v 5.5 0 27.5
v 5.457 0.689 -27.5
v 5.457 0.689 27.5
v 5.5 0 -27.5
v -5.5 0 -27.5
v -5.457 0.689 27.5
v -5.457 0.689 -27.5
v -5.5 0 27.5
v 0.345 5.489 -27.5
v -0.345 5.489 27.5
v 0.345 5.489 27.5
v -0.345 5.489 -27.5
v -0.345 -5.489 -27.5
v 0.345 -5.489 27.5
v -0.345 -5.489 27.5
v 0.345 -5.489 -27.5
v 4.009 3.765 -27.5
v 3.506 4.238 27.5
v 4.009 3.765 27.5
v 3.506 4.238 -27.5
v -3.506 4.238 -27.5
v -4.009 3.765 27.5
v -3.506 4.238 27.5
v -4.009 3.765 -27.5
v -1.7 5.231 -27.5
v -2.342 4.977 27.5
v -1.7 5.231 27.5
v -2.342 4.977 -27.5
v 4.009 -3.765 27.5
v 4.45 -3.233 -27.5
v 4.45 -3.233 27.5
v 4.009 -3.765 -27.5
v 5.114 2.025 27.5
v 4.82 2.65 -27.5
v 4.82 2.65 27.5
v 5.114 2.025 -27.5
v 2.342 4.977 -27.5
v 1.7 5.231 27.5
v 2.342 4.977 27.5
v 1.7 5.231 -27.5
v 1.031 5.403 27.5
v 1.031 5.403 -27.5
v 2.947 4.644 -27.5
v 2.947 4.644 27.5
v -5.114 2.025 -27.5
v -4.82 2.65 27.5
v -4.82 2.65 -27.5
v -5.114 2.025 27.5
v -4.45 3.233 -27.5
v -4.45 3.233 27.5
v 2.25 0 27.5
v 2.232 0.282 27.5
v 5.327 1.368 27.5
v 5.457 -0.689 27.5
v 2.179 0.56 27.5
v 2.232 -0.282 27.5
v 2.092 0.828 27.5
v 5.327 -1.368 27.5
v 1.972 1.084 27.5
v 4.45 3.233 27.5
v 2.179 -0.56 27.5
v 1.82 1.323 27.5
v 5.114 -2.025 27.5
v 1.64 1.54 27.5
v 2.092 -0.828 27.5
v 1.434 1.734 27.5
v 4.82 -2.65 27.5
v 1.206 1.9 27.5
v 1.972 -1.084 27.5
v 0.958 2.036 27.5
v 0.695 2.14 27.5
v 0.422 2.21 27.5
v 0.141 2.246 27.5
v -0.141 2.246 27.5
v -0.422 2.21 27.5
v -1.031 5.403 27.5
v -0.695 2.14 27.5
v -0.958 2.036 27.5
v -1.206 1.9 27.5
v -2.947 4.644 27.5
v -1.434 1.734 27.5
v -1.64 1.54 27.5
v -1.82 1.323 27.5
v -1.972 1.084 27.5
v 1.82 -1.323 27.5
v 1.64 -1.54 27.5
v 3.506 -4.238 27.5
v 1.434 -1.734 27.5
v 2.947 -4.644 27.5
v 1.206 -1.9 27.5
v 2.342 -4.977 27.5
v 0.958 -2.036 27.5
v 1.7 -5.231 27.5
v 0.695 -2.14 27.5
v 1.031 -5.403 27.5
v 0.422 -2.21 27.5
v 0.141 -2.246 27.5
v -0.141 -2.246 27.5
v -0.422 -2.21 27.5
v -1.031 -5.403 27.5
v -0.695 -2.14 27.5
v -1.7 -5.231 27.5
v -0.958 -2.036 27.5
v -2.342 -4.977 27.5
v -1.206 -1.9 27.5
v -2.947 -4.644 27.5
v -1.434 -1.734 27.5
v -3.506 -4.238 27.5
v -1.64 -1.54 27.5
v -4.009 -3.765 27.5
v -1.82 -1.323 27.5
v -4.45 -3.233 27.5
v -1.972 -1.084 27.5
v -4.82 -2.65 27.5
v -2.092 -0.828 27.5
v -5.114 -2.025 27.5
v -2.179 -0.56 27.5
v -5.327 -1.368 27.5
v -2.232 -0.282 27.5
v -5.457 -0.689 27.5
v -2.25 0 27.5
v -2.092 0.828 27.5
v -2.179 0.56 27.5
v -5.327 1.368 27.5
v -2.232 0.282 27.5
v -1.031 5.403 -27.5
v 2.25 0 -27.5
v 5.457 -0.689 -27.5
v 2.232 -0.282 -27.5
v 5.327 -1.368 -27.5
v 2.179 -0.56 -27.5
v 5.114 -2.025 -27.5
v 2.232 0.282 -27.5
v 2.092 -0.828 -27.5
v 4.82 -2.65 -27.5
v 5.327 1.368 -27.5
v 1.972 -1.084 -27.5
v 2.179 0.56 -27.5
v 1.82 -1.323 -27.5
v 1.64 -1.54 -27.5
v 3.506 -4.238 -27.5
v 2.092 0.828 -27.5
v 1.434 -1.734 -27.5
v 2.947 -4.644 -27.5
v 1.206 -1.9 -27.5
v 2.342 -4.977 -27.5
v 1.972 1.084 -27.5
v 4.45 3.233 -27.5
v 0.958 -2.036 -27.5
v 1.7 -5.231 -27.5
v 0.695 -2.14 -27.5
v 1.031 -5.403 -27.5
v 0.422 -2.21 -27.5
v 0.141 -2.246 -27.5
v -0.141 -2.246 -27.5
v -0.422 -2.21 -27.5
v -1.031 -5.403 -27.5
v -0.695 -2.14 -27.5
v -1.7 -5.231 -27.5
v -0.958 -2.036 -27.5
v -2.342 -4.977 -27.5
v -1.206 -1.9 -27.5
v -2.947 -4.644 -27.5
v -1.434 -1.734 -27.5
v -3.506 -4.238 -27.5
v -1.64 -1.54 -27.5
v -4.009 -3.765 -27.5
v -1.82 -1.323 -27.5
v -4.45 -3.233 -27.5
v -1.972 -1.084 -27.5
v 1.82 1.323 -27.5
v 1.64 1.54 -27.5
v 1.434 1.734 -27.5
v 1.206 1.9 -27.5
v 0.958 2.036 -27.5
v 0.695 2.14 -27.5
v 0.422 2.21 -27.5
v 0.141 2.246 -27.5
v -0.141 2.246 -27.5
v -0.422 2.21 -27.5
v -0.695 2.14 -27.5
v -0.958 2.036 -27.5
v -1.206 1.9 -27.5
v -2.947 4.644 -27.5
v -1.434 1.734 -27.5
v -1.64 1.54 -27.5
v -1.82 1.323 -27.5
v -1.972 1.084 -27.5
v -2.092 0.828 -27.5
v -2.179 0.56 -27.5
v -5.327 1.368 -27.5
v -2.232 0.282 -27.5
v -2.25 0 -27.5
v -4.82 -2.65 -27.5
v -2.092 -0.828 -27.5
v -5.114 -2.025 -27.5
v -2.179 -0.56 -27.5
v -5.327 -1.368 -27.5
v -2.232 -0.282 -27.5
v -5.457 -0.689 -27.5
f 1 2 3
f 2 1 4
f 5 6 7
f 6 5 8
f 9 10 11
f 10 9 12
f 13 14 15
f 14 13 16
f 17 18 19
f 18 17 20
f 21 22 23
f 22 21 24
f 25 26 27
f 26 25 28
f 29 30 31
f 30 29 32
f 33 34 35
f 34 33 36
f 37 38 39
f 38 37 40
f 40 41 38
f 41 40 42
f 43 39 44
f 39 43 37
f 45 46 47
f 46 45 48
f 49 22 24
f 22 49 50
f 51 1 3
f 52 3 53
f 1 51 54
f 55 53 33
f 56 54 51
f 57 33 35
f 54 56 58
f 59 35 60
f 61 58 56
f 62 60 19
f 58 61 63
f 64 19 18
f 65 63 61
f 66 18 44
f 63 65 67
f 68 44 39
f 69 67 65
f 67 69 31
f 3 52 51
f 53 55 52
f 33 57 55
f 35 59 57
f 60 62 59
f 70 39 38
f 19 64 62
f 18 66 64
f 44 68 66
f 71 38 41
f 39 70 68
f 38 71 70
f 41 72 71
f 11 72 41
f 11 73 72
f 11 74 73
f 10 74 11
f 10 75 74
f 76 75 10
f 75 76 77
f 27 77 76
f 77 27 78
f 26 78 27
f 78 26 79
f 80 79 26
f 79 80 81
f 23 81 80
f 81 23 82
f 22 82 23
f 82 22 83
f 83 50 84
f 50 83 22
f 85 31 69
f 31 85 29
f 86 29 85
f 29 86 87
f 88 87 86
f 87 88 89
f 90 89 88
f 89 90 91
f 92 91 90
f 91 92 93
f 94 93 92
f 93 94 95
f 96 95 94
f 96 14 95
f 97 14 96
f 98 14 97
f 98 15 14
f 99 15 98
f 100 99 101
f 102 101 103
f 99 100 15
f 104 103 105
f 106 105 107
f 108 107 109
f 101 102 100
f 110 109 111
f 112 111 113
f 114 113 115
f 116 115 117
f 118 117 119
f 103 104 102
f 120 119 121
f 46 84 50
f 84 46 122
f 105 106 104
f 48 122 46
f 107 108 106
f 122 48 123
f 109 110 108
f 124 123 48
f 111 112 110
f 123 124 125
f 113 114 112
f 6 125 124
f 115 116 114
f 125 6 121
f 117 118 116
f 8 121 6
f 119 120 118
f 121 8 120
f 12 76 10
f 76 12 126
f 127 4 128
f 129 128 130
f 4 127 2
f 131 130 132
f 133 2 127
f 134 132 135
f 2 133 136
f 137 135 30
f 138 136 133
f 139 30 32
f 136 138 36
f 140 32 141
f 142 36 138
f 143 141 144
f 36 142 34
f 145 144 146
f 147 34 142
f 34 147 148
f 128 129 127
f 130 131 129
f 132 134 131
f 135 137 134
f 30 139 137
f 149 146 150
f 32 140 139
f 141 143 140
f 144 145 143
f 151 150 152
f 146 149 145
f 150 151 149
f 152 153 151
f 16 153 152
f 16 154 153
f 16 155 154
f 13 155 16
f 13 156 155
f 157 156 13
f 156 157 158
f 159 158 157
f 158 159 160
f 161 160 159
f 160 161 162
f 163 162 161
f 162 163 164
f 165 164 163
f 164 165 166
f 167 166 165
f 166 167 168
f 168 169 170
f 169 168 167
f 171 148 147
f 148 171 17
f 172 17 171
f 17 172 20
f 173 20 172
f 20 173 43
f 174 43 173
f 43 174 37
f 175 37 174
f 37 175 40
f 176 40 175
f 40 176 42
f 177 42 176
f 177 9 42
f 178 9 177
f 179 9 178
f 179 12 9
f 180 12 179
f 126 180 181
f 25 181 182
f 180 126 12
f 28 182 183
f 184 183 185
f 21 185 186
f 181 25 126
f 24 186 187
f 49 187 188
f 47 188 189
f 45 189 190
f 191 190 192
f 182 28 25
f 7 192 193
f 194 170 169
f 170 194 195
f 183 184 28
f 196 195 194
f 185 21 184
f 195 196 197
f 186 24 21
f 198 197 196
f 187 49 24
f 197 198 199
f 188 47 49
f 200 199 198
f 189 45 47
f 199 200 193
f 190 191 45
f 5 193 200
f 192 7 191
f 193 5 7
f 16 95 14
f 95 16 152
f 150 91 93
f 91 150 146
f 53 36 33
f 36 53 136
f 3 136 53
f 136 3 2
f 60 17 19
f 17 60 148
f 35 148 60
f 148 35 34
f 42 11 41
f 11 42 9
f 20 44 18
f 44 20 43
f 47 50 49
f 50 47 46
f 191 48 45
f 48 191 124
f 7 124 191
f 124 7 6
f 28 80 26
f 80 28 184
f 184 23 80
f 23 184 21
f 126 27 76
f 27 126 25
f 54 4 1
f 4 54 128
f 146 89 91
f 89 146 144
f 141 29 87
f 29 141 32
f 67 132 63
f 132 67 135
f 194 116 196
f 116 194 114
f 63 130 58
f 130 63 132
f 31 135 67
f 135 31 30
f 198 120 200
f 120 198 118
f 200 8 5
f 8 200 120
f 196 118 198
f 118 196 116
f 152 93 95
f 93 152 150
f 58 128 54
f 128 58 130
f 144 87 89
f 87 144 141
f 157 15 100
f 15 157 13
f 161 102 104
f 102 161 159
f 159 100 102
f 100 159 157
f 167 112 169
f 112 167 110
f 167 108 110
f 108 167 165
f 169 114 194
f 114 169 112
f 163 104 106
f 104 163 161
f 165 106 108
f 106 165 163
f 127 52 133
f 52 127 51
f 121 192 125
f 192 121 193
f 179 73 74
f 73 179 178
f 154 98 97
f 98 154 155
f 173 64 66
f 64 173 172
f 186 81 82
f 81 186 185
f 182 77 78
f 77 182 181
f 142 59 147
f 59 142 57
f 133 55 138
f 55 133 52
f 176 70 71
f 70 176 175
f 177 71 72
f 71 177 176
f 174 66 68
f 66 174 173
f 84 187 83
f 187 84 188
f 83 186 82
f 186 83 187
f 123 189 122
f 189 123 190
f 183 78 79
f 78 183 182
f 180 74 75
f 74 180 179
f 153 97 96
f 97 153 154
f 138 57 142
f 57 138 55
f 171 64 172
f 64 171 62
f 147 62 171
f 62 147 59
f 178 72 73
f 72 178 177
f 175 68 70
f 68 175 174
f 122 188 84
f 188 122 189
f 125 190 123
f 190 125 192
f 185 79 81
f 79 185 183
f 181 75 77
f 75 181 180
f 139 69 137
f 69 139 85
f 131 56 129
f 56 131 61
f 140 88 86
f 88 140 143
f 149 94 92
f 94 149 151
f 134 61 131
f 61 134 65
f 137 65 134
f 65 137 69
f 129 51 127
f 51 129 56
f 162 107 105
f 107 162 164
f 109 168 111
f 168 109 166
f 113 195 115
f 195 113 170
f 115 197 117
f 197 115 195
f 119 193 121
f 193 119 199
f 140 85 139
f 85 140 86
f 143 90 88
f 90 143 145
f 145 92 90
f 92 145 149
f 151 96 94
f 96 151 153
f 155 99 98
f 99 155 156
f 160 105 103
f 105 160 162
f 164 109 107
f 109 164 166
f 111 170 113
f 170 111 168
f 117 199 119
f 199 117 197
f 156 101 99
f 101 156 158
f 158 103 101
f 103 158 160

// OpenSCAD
$fn = 50;


difference() {
	union() {
		translate(v = [0, 0, -27.5000000000]) {
			cylinder(h = 55, r = 5.5000000000);
		}
	}
	union() {
		translate(v = [0, 0, -100.0000000000]) {
			cylinder(h = 200, r = 2.2500000000);
		}
	}
}
